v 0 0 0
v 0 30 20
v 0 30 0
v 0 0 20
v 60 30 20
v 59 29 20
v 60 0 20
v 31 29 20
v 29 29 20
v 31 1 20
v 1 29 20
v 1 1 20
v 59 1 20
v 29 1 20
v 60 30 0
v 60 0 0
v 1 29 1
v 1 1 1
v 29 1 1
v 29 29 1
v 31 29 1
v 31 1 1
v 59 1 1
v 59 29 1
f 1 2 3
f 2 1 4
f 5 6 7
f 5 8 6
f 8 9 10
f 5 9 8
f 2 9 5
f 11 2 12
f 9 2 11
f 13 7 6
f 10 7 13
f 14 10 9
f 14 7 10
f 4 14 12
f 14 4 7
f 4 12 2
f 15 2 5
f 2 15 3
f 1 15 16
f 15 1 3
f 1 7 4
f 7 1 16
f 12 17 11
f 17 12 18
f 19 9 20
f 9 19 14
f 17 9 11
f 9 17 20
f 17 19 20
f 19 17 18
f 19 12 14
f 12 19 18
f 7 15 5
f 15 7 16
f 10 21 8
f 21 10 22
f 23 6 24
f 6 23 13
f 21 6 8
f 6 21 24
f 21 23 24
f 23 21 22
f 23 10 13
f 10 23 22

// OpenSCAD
length = 30;
thickness = 1;
height = 20;


difference() {
    cube([length, length, height]);
    translate([thickness, thickness, thickness]) cube([length - 2 * thickness, length - 2 * thickness, height - thickness]);
}

translate([length, 0, 0]) difference() {
    cube([length, length, height]);
    translate([thickness, thickness, thickness]) cube([length - 2 * thickness, length - 2 * thickness, height - thickness]);
}
